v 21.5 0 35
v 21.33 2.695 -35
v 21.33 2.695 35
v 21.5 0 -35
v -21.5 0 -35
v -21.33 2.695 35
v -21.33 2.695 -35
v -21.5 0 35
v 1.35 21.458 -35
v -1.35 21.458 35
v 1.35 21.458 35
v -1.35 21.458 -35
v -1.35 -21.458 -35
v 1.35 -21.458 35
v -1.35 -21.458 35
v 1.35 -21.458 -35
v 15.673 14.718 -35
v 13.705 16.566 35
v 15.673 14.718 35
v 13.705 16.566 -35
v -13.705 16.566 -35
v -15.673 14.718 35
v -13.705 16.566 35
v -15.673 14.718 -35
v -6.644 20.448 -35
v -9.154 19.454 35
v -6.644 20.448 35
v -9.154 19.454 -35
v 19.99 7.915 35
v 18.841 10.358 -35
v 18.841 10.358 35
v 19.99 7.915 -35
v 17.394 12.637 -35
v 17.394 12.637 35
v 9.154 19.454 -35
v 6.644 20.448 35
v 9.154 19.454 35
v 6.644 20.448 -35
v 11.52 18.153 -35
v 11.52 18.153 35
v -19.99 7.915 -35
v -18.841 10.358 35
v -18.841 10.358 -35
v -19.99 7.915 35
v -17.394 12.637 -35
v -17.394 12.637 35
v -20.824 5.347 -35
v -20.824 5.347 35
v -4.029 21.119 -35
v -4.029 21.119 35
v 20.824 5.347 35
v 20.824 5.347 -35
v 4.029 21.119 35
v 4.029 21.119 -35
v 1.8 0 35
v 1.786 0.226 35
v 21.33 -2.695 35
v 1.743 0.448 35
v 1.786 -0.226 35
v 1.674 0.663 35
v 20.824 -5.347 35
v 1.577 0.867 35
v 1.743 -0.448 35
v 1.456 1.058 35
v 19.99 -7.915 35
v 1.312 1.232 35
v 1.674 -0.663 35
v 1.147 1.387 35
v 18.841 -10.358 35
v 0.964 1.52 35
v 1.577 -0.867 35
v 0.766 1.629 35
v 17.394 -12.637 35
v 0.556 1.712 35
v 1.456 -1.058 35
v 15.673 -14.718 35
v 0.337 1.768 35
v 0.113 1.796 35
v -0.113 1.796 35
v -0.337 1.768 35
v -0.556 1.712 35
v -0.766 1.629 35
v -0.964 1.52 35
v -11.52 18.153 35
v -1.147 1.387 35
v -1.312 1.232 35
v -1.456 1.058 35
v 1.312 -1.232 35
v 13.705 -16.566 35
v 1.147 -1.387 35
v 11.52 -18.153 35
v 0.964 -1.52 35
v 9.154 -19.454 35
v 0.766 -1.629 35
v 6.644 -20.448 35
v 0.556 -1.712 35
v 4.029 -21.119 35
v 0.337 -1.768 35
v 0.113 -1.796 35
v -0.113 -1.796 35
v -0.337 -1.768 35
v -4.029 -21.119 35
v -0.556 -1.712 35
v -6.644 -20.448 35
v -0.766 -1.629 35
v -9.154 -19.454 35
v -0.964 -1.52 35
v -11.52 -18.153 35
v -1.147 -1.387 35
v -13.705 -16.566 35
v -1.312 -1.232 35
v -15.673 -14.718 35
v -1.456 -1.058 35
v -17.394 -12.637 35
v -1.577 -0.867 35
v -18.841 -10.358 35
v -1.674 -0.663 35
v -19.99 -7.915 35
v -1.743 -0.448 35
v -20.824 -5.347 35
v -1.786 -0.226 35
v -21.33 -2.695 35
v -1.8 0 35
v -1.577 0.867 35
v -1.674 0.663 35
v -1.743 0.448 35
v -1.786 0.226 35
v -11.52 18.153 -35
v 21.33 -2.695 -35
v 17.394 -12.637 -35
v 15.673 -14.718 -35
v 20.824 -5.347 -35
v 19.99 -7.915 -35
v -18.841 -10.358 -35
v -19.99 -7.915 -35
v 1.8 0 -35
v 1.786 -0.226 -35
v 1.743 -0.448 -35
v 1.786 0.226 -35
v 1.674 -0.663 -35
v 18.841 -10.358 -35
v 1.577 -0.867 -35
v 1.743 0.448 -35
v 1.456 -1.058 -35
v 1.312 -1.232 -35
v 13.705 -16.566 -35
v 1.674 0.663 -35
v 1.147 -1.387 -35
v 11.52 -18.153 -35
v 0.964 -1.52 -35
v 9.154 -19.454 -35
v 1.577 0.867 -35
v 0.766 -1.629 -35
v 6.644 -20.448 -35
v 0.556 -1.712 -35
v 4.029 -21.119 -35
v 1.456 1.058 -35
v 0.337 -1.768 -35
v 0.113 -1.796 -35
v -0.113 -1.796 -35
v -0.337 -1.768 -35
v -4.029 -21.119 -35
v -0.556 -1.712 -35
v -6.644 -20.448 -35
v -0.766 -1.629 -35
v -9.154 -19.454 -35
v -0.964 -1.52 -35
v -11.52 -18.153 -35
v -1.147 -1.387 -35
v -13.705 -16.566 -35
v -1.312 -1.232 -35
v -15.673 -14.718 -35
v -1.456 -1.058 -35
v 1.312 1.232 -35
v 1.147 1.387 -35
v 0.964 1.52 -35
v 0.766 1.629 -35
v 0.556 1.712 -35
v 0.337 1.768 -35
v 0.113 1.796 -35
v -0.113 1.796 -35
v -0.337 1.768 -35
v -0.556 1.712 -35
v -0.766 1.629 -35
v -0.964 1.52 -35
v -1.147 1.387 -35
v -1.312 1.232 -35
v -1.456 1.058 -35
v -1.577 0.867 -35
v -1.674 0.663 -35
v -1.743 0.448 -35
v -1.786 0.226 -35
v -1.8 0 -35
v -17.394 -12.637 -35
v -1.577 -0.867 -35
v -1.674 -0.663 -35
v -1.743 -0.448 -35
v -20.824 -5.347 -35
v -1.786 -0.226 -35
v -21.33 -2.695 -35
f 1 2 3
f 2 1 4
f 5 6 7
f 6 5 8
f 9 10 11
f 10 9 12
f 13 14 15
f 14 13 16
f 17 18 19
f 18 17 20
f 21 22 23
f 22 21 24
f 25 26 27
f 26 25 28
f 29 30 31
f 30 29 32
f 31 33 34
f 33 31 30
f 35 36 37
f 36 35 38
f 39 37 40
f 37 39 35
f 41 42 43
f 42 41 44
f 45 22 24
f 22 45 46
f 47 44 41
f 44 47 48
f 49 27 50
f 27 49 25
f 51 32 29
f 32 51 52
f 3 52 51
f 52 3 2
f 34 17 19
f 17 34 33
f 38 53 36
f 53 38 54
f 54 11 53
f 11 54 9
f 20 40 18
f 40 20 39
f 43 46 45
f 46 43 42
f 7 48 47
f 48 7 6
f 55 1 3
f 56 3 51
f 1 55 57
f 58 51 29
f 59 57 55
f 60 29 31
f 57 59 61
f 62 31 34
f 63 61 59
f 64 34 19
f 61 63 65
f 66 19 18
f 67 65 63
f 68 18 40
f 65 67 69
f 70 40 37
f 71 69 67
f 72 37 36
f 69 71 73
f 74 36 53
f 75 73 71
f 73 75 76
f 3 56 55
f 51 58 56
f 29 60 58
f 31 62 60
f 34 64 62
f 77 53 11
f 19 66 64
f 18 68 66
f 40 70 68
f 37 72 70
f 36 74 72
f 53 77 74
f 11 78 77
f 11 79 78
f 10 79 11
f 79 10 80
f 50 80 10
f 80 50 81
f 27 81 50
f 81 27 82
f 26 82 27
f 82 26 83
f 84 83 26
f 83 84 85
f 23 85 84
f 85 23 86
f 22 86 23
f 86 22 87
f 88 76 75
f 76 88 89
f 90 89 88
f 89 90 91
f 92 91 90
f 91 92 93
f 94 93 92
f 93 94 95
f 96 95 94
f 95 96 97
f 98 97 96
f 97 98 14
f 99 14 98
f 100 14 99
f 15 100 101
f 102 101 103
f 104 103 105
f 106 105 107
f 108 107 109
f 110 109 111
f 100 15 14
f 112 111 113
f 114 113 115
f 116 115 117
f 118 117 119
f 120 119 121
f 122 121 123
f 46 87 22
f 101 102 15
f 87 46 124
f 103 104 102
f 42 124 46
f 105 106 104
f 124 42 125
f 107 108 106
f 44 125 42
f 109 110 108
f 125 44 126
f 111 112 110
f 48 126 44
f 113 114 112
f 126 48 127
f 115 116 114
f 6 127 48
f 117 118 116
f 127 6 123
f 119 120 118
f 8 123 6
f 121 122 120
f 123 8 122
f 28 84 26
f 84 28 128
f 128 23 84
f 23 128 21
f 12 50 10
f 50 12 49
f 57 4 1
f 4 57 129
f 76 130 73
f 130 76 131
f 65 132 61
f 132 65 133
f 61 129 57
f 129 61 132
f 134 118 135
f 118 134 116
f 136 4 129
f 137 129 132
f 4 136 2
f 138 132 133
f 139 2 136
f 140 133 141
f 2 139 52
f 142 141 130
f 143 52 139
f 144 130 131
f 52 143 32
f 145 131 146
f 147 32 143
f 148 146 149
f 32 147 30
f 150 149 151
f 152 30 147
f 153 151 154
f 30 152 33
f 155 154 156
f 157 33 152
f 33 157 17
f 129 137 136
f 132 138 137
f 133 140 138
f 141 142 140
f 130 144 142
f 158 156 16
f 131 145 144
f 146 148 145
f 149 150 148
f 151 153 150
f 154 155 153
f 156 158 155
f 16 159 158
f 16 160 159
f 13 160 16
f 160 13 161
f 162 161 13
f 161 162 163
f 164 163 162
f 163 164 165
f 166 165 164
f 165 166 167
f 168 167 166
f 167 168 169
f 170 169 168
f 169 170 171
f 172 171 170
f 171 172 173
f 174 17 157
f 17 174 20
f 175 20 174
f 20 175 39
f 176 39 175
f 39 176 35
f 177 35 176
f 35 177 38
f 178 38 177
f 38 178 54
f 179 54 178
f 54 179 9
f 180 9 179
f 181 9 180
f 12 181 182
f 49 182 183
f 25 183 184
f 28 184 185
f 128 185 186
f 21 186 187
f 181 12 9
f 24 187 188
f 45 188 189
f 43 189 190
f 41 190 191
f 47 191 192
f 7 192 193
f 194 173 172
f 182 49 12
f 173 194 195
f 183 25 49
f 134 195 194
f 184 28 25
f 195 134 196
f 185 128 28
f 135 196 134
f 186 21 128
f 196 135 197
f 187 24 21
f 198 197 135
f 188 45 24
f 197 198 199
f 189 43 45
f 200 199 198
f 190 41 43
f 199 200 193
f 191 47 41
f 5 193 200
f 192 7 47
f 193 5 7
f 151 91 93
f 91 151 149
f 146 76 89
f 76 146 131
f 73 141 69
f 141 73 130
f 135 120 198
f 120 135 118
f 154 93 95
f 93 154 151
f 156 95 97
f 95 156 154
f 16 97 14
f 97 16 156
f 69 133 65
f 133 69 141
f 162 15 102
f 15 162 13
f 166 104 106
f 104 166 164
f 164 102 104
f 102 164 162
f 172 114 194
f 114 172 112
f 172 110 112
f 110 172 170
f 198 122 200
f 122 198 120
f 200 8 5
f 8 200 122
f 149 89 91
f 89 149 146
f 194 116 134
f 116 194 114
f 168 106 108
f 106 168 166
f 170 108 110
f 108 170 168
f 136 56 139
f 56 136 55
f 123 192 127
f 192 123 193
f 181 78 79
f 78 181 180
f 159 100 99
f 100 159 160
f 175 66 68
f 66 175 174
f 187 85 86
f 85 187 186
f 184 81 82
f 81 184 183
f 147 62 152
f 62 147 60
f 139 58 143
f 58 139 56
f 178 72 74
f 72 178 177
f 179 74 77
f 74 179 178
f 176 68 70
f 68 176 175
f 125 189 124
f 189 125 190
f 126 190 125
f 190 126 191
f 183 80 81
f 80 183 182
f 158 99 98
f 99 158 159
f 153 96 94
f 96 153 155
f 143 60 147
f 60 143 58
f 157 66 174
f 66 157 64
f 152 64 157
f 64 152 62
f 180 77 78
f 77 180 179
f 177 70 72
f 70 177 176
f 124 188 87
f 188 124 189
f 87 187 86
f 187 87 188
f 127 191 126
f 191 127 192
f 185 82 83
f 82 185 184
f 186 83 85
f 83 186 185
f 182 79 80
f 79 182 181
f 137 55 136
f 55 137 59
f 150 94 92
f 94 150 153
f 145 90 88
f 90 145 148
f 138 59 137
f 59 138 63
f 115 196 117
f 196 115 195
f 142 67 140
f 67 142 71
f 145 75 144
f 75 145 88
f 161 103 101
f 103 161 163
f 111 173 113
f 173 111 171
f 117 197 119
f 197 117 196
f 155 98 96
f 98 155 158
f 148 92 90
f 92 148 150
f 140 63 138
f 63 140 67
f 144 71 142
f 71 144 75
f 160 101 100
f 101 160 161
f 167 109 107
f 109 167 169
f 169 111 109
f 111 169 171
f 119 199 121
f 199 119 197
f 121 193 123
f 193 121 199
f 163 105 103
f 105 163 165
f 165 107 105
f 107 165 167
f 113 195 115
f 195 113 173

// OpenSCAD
$fn = 50;


difference() {
	union() {
		translate(v = [0, 0, -35.0000000000]) {
			cylinder(h = 70, r = 21.5000000000);
		}
	}
	union() {
		translate(v = [0, 0, -100.0000000000]) {
			cylinder(h = 200, r = 1.8000000000);
		}
	}
}
